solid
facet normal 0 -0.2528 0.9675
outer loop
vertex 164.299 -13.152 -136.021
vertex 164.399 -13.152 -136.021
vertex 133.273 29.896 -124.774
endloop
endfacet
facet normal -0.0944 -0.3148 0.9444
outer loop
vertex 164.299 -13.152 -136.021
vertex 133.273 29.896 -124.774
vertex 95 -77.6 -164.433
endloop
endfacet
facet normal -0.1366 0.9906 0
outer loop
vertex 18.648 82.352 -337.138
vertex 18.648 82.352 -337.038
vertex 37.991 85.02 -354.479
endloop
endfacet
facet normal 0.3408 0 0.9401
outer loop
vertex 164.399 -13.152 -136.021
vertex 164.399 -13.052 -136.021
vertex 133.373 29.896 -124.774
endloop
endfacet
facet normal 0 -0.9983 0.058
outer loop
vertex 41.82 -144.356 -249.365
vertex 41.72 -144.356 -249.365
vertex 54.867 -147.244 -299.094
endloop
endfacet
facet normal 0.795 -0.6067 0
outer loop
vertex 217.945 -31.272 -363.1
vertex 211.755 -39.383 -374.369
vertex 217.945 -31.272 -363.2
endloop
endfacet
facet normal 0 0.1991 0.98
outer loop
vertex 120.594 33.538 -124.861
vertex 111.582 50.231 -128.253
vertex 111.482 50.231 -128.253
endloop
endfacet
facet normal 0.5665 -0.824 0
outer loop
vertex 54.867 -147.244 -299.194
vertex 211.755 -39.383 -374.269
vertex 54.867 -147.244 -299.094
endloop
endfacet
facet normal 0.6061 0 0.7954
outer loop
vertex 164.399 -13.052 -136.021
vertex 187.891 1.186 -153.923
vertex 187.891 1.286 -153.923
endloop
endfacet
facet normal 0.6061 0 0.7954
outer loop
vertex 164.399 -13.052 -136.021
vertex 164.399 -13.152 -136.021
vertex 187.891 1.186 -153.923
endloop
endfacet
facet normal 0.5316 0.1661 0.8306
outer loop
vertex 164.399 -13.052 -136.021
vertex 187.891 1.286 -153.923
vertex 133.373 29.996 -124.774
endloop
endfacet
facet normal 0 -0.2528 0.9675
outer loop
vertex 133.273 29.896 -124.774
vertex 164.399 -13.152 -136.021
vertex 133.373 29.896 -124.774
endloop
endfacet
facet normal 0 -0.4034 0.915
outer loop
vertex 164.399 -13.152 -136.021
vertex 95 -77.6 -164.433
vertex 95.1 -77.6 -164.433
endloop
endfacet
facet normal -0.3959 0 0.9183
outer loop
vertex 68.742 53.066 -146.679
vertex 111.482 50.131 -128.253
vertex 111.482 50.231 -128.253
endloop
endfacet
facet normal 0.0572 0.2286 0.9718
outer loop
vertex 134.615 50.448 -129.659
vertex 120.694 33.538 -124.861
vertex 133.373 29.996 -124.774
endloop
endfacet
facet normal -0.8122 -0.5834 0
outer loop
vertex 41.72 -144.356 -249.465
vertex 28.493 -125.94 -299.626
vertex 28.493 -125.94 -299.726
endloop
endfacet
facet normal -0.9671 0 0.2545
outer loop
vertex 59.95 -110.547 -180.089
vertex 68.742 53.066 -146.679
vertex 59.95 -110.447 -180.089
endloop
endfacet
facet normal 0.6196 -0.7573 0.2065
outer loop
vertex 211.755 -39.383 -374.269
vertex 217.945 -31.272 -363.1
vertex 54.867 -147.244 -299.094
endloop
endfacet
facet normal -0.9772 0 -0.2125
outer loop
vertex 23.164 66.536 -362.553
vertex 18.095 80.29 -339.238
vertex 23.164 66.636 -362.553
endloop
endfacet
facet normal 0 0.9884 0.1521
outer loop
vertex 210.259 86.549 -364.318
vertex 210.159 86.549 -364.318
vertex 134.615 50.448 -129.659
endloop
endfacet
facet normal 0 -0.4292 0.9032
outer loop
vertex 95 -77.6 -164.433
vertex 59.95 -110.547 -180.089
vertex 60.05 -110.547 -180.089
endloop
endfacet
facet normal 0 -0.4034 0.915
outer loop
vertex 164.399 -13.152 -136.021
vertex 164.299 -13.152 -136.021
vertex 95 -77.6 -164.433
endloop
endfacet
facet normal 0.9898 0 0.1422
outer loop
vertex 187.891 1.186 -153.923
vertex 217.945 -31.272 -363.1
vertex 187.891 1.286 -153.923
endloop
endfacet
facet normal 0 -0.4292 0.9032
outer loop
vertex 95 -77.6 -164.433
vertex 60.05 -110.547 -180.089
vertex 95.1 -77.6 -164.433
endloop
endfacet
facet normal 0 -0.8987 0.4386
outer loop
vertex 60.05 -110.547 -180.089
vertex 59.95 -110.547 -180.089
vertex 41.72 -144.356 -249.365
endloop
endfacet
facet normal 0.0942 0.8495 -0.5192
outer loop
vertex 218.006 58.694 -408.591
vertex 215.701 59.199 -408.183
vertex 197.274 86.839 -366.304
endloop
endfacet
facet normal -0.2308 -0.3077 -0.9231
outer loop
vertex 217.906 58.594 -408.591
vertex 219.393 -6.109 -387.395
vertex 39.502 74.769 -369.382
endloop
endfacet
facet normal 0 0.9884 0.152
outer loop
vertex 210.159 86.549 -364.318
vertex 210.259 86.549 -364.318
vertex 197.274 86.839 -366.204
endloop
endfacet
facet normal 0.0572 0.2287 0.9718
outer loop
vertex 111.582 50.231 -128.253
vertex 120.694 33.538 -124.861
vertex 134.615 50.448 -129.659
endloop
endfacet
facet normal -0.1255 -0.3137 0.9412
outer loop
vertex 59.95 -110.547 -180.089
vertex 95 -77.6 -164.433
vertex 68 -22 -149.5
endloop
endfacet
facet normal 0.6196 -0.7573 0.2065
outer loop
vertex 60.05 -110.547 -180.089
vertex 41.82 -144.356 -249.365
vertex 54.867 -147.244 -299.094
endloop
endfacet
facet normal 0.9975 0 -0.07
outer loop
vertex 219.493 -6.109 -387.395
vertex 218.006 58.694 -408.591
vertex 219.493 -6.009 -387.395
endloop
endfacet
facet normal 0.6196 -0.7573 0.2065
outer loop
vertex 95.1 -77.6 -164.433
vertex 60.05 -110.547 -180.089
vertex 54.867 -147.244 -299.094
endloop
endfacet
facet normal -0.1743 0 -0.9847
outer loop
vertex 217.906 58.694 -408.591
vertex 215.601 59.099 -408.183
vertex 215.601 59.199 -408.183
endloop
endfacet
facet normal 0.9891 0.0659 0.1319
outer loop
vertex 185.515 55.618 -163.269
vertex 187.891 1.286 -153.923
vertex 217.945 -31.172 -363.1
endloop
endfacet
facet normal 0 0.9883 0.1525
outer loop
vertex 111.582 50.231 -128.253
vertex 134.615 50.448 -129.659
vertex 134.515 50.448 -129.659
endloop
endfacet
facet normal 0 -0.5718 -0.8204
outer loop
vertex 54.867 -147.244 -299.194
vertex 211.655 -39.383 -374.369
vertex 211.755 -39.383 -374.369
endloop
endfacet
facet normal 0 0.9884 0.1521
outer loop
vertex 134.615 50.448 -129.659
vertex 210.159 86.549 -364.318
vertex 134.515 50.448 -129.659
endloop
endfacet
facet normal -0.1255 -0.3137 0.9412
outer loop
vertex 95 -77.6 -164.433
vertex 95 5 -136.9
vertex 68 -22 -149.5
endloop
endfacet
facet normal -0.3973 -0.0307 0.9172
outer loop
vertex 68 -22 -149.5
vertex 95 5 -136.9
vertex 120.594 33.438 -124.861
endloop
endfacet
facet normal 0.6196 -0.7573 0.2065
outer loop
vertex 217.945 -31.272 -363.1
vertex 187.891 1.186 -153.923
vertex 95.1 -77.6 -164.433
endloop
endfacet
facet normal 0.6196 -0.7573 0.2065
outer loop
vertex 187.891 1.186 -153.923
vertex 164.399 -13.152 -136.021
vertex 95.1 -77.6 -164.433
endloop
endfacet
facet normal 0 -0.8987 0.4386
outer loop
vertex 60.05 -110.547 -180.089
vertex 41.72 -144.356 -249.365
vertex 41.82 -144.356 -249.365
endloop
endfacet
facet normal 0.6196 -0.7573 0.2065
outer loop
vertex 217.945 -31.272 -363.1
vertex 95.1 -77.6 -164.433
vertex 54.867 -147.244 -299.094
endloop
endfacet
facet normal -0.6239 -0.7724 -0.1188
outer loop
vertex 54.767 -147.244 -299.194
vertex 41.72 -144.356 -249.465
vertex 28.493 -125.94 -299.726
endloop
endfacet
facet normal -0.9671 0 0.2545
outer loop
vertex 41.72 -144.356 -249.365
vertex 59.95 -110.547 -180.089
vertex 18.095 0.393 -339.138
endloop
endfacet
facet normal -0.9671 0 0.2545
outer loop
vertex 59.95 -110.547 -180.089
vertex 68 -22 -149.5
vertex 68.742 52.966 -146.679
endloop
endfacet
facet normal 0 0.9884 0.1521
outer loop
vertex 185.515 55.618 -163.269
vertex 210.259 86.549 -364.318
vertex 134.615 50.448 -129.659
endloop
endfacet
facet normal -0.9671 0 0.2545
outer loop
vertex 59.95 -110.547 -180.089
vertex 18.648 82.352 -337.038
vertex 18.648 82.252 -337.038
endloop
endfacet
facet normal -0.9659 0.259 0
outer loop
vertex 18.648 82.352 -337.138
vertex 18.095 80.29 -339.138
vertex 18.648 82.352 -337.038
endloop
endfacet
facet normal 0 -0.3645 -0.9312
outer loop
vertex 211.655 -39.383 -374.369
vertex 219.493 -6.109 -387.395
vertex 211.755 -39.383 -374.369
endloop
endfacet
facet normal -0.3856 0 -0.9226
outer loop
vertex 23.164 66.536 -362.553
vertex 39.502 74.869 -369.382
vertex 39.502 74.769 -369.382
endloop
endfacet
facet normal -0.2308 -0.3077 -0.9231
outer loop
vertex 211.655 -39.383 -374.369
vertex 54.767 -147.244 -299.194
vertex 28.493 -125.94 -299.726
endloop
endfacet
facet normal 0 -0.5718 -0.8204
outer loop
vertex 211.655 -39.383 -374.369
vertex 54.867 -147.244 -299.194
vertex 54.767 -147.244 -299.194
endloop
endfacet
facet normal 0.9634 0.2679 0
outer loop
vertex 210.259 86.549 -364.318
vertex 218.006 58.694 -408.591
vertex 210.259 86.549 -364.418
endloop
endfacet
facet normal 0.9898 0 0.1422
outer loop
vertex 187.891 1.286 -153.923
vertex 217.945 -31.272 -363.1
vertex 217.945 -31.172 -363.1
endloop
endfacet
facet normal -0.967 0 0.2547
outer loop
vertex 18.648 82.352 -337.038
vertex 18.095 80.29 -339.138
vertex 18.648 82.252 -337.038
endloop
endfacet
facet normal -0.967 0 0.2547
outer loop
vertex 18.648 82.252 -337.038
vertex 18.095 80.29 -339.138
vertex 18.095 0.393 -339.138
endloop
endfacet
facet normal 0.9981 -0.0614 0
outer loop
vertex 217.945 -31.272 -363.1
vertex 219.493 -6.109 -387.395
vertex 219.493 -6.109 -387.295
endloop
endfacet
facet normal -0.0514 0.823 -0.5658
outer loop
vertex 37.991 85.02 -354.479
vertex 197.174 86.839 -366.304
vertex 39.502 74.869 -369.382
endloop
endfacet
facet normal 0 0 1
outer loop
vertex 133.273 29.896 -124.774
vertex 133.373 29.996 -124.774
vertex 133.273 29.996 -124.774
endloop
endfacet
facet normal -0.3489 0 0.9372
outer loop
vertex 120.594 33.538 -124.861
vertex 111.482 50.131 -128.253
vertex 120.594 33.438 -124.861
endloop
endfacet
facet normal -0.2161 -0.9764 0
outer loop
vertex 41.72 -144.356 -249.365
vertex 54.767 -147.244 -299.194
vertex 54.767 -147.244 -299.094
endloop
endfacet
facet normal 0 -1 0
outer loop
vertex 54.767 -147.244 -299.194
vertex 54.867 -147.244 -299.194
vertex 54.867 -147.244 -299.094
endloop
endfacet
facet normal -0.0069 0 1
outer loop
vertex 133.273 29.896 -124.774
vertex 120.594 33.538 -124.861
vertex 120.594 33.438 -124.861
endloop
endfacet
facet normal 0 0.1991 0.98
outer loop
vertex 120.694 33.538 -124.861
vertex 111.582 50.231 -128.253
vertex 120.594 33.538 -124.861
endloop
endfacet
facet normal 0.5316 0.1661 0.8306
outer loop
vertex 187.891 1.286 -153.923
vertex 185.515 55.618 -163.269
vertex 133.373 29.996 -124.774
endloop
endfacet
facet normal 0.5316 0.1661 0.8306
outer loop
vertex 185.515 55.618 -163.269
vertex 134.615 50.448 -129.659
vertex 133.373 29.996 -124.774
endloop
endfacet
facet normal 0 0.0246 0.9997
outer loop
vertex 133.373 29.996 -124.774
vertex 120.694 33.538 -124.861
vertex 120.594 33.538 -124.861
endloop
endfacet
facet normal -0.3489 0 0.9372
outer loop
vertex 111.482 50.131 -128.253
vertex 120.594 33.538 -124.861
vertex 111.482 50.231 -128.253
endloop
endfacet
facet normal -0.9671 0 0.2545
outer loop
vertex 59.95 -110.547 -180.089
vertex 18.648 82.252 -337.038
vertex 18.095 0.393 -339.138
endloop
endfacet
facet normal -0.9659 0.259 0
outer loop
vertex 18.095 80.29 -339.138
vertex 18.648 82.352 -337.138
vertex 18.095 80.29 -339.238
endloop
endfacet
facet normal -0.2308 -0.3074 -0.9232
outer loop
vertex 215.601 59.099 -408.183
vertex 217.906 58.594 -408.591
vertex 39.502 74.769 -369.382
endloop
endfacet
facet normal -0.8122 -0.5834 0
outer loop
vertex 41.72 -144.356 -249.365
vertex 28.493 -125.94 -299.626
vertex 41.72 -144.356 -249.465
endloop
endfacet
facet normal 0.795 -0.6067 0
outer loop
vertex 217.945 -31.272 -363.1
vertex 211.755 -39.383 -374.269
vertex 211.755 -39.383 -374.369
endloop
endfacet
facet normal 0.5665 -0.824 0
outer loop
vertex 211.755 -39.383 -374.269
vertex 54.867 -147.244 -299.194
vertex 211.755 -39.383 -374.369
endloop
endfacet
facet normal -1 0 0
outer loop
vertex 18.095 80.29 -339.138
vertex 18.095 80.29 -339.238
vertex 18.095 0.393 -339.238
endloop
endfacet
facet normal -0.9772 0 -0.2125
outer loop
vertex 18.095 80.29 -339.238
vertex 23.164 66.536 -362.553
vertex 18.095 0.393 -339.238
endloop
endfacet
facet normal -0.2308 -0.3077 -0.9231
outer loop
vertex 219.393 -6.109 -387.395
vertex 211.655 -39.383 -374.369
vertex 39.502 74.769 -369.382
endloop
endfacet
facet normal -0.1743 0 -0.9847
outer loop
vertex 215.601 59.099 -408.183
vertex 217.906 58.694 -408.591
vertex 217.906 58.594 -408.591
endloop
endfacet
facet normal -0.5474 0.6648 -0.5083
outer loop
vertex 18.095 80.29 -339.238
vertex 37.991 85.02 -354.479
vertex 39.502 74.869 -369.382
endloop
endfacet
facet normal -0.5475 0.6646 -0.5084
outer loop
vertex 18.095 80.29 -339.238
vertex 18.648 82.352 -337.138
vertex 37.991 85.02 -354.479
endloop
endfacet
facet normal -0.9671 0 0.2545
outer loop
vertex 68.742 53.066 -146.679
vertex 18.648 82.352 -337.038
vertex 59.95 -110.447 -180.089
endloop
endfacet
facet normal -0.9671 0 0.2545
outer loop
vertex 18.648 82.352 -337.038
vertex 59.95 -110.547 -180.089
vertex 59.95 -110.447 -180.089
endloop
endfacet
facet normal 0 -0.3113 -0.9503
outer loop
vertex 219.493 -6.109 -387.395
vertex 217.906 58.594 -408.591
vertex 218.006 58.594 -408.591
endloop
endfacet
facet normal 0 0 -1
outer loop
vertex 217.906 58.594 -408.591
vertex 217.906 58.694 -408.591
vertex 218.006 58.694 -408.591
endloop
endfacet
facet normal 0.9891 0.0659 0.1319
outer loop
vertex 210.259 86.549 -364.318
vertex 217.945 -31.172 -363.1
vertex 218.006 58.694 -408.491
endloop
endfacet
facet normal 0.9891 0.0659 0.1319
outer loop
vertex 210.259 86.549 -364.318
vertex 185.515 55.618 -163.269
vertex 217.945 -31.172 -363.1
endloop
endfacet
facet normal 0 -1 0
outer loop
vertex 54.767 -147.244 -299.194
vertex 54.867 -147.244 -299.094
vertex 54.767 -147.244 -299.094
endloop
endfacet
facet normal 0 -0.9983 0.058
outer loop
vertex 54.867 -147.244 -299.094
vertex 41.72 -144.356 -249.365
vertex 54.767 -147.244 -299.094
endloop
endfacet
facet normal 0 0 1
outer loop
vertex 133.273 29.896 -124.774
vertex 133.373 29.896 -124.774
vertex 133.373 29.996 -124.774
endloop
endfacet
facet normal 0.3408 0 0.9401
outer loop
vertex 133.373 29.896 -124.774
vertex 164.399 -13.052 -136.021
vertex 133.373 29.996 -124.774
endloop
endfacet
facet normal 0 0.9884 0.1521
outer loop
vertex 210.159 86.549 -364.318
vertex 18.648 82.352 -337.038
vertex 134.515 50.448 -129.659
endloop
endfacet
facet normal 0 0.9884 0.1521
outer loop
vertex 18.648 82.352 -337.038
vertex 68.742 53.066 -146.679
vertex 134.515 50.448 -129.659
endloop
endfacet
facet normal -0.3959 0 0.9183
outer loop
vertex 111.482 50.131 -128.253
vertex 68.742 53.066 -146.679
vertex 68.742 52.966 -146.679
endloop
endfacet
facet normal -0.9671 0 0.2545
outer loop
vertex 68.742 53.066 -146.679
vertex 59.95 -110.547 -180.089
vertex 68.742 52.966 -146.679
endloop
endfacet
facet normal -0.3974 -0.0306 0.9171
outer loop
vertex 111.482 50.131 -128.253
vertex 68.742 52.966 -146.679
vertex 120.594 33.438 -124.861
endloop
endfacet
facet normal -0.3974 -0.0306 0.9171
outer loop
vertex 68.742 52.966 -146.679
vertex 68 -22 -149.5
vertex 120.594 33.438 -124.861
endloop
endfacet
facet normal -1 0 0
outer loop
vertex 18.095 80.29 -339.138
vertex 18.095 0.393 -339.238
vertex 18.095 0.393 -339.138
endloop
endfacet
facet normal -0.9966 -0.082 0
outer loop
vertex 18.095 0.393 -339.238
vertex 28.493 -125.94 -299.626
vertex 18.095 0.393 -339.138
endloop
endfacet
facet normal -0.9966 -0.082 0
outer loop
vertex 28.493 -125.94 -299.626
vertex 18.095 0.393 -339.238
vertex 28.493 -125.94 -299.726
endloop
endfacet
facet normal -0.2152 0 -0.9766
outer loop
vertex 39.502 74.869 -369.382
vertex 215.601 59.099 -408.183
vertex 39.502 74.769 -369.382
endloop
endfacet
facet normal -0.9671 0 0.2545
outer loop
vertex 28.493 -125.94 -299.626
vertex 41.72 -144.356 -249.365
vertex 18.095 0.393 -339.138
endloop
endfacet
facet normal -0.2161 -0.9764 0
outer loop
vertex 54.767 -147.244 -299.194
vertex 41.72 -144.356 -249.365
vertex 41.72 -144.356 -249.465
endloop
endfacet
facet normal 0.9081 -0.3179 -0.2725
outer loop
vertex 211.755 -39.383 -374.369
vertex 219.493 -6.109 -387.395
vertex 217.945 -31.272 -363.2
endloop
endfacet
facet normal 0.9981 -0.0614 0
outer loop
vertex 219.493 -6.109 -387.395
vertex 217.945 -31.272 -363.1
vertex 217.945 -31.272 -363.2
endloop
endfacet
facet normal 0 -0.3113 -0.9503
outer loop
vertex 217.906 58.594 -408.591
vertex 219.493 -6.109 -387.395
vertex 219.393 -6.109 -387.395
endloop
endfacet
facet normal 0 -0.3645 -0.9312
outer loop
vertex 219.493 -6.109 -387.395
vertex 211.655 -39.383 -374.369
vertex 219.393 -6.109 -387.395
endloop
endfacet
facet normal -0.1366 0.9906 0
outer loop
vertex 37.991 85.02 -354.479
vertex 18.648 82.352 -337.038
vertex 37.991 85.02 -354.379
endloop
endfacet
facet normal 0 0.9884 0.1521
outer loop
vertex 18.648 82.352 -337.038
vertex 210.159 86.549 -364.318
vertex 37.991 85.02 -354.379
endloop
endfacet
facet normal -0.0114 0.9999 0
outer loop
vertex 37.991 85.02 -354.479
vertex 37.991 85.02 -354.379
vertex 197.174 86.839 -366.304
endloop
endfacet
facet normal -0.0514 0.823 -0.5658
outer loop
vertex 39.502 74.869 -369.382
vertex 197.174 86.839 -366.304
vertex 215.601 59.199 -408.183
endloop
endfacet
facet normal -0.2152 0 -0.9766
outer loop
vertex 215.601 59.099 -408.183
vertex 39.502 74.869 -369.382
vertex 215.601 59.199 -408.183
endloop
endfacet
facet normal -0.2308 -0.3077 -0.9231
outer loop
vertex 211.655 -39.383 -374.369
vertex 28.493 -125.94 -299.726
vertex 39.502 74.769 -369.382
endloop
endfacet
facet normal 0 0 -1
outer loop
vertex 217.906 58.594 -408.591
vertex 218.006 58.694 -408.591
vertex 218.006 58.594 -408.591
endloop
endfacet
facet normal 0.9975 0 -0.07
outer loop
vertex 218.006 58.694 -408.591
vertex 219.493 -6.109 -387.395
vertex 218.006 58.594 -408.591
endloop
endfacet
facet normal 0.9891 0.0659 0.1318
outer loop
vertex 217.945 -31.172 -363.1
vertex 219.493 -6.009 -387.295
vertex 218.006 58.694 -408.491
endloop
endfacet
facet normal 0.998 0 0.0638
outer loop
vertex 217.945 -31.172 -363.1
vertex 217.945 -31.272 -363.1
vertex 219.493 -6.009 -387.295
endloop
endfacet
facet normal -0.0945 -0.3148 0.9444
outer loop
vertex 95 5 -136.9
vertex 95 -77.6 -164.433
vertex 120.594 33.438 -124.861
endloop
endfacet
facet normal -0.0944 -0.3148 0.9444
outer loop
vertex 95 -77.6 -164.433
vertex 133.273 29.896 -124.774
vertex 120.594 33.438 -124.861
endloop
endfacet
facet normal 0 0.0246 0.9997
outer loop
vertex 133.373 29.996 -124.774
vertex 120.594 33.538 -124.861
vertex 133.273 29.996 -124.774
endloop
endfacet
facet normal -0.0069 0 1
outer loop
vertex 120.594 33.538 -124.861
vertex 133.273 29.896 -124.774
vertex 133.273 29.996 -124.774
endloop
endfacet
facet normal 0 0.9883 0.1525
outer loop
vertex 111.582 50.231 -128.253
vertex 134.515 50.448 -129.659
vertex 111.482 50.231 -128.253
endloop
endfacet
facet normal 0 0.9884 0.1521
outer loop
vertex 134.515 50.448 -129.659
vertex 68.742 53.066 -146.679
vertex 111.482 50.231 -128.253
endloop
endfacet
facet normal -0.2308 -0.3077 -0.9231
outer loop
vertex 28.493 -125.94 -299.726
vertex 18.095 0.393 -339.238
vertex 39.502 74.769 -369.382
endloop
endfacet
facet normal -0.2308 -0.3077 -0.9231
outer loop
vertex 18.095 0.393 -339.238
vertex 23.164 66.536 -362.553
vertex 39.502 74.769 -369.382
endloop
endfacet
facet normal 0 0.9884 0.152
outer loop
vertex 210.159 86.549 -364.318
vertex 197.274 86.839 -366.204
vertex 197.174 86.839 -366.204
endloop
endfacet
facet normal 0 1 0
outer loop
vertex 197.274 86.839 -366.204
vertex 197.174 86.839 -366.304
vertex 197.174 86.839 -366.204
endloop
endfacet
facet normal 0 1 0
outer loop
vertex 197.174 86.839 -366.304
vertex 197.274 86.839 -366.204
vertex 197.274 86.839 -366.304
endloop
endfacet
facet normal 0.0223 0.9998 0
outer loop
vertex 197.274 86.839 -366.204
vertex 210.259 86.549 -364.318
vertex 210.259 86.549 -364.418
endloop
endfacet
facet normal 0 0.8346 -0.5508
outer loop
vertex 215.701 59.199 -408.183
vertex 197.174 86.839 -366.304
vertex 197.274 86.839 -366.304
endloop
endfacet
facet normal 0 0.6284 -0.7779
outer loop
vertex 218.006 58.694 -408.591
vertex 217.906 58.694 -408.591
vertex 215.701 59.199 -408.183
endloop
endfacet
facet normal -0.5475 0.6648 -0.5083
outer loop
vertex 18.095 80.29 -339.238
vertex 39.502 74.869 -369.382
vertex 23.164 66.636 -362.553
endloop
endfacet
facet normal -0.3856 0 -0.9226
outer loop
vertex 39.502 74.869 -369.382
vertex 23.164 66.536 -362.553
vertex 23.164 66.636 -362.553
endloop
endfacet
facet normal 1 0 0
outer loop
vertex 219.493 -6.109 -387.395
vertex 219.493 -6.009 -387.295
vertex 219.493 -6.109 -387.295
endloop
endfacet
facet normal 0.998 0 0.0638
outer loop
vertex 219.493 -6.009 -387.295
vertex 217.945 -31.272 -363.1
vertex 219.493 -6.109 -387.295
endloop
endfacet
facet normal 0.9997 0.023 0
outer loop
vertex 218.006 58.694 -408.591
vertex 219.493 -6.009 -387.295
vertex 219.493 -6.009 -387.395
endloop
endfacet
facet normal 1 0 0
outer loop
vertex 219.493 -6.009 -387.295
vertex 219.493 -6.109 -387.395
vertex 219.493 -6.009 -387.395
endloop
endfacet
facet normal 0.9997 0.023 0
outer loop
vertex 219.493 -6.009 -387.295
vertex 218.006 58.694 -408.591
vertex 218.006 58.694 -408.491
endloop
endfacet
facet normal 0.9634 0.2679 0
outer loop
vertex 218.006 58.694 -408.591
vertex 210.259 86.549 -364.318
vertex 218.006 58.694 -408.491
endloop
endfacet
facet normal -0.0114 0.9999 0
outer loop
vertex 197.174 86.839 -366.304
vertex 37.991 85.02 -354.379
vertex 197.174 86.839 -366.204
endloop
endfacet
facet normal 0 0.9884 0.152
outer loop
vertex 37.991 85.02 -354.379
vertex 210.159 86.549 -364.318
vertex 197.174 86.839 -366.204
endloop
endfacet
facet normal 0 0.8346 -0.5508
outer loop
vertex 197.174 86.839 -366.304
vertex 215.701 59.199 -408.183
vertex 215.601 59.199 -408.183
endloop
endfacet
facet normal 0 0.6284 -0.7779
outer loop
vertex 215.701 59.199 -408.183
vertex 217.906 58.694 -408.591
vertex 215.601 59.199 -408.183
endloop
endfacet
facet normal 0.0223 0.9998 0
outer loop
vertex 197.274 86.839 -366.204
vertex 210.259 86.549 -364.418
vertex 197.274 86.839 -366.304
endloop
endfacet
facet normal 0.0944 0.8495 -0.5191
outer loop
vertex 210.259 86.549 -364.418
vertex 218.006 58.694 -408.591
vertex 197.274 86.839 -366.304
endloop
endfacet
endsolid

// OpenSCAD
hull(){ translate([164.298813376,-13.1521035599,-136.120819849])cube(0.1,0.1,0.1);
translate([134.515033948,50.3475590042,-129.759133527])cube(0.1,0.1,0.1);
translate([133.273045508,29.8961493582,-124.873978996])cube(0.1,0.1,0.1);
translate([68.7422383765,52.966076026,-146.779494169])cube(0.1,0.1,0.1);
translate([111.48212591,50.1312875672,-128.353369187])cube(0.1,0.1,0.1);
translate([120.593827501,33.4375861119,-124.961421879])cube(0.1,0.1,0.1);
translate([185.414651002,55.5183137526,-163.369039392])cube(0.1,0.1,0.1);
translate([217.844777842,-31.2723600692,-363.19965378])cube(0.1,0.1,0.1);
translate([187.790697674,1.18604651163,-154.023255814])cube(0.1,0.1,0.1);
translate([68.0,-22.0,-149.6])cube(0.1,0.1,0.1);
translate([95.0,5.0,-137.0])cube(0.1,0.1,0.1);
translate([59.9502982107,-110.546719682,-180.188866799])cube(0.1,0.1,0.1);
translate([95.0,-77.6,-164.533333333])cube(0.1,0.1,0.1);
translate([210.159165752,86.4489571899,-364.418221734])cube(0.1,0.1,0.1);
translate([197.173913043,86.7391304348,-366.304347826])cube(0.1,0.1,0.1);
translate([41.7197932371,-144.356019815,-249.464785699])cube(0.1,0.1,0.1);
translate([219.393305439,-6.10878661088,-387.39539749])cube(0.1,0.1,0.1);
translate([54.7670048854,-147.243517475,-299.193912063])cube(0.1,0.1,0.1);
translate([211.655132641,-39.3829296424,-374.36947328])cube(0.1,0.1,0.1);
translate([18.0952380952,0.392857142857,-339.238095238])cube(0.1,0.1,0.1);
translate([28.4930282445,-125.940293171,-299.726492671])cube(0.1,0.1,0.1);
translate([217.905891762,58.5937083444,-408.591042389])cube(0.1,0.1,0.1);
translate([215.600600601,59.0990990991,-408.183183183])cube(0.1,0.1,0.1);
translate([23.1636465533,66.535587521,-362.552774145])cube(0.1,0.1,0.1);
translate([39.5025125628,74.7688442211,-369.381909548])cube(0.1,0.1,0.1);
translate([37.9906542056,84.9198931909,-354.479305741])cube(0.1,0.1,0.1);
translate([18.0952380952,80.1904761905,-339.238095238])cube(0.1,0.1,0.1);
translate([18.6479966436,82.2519404237,-337.137612754])cube(0.1,0.1,0.1); }
